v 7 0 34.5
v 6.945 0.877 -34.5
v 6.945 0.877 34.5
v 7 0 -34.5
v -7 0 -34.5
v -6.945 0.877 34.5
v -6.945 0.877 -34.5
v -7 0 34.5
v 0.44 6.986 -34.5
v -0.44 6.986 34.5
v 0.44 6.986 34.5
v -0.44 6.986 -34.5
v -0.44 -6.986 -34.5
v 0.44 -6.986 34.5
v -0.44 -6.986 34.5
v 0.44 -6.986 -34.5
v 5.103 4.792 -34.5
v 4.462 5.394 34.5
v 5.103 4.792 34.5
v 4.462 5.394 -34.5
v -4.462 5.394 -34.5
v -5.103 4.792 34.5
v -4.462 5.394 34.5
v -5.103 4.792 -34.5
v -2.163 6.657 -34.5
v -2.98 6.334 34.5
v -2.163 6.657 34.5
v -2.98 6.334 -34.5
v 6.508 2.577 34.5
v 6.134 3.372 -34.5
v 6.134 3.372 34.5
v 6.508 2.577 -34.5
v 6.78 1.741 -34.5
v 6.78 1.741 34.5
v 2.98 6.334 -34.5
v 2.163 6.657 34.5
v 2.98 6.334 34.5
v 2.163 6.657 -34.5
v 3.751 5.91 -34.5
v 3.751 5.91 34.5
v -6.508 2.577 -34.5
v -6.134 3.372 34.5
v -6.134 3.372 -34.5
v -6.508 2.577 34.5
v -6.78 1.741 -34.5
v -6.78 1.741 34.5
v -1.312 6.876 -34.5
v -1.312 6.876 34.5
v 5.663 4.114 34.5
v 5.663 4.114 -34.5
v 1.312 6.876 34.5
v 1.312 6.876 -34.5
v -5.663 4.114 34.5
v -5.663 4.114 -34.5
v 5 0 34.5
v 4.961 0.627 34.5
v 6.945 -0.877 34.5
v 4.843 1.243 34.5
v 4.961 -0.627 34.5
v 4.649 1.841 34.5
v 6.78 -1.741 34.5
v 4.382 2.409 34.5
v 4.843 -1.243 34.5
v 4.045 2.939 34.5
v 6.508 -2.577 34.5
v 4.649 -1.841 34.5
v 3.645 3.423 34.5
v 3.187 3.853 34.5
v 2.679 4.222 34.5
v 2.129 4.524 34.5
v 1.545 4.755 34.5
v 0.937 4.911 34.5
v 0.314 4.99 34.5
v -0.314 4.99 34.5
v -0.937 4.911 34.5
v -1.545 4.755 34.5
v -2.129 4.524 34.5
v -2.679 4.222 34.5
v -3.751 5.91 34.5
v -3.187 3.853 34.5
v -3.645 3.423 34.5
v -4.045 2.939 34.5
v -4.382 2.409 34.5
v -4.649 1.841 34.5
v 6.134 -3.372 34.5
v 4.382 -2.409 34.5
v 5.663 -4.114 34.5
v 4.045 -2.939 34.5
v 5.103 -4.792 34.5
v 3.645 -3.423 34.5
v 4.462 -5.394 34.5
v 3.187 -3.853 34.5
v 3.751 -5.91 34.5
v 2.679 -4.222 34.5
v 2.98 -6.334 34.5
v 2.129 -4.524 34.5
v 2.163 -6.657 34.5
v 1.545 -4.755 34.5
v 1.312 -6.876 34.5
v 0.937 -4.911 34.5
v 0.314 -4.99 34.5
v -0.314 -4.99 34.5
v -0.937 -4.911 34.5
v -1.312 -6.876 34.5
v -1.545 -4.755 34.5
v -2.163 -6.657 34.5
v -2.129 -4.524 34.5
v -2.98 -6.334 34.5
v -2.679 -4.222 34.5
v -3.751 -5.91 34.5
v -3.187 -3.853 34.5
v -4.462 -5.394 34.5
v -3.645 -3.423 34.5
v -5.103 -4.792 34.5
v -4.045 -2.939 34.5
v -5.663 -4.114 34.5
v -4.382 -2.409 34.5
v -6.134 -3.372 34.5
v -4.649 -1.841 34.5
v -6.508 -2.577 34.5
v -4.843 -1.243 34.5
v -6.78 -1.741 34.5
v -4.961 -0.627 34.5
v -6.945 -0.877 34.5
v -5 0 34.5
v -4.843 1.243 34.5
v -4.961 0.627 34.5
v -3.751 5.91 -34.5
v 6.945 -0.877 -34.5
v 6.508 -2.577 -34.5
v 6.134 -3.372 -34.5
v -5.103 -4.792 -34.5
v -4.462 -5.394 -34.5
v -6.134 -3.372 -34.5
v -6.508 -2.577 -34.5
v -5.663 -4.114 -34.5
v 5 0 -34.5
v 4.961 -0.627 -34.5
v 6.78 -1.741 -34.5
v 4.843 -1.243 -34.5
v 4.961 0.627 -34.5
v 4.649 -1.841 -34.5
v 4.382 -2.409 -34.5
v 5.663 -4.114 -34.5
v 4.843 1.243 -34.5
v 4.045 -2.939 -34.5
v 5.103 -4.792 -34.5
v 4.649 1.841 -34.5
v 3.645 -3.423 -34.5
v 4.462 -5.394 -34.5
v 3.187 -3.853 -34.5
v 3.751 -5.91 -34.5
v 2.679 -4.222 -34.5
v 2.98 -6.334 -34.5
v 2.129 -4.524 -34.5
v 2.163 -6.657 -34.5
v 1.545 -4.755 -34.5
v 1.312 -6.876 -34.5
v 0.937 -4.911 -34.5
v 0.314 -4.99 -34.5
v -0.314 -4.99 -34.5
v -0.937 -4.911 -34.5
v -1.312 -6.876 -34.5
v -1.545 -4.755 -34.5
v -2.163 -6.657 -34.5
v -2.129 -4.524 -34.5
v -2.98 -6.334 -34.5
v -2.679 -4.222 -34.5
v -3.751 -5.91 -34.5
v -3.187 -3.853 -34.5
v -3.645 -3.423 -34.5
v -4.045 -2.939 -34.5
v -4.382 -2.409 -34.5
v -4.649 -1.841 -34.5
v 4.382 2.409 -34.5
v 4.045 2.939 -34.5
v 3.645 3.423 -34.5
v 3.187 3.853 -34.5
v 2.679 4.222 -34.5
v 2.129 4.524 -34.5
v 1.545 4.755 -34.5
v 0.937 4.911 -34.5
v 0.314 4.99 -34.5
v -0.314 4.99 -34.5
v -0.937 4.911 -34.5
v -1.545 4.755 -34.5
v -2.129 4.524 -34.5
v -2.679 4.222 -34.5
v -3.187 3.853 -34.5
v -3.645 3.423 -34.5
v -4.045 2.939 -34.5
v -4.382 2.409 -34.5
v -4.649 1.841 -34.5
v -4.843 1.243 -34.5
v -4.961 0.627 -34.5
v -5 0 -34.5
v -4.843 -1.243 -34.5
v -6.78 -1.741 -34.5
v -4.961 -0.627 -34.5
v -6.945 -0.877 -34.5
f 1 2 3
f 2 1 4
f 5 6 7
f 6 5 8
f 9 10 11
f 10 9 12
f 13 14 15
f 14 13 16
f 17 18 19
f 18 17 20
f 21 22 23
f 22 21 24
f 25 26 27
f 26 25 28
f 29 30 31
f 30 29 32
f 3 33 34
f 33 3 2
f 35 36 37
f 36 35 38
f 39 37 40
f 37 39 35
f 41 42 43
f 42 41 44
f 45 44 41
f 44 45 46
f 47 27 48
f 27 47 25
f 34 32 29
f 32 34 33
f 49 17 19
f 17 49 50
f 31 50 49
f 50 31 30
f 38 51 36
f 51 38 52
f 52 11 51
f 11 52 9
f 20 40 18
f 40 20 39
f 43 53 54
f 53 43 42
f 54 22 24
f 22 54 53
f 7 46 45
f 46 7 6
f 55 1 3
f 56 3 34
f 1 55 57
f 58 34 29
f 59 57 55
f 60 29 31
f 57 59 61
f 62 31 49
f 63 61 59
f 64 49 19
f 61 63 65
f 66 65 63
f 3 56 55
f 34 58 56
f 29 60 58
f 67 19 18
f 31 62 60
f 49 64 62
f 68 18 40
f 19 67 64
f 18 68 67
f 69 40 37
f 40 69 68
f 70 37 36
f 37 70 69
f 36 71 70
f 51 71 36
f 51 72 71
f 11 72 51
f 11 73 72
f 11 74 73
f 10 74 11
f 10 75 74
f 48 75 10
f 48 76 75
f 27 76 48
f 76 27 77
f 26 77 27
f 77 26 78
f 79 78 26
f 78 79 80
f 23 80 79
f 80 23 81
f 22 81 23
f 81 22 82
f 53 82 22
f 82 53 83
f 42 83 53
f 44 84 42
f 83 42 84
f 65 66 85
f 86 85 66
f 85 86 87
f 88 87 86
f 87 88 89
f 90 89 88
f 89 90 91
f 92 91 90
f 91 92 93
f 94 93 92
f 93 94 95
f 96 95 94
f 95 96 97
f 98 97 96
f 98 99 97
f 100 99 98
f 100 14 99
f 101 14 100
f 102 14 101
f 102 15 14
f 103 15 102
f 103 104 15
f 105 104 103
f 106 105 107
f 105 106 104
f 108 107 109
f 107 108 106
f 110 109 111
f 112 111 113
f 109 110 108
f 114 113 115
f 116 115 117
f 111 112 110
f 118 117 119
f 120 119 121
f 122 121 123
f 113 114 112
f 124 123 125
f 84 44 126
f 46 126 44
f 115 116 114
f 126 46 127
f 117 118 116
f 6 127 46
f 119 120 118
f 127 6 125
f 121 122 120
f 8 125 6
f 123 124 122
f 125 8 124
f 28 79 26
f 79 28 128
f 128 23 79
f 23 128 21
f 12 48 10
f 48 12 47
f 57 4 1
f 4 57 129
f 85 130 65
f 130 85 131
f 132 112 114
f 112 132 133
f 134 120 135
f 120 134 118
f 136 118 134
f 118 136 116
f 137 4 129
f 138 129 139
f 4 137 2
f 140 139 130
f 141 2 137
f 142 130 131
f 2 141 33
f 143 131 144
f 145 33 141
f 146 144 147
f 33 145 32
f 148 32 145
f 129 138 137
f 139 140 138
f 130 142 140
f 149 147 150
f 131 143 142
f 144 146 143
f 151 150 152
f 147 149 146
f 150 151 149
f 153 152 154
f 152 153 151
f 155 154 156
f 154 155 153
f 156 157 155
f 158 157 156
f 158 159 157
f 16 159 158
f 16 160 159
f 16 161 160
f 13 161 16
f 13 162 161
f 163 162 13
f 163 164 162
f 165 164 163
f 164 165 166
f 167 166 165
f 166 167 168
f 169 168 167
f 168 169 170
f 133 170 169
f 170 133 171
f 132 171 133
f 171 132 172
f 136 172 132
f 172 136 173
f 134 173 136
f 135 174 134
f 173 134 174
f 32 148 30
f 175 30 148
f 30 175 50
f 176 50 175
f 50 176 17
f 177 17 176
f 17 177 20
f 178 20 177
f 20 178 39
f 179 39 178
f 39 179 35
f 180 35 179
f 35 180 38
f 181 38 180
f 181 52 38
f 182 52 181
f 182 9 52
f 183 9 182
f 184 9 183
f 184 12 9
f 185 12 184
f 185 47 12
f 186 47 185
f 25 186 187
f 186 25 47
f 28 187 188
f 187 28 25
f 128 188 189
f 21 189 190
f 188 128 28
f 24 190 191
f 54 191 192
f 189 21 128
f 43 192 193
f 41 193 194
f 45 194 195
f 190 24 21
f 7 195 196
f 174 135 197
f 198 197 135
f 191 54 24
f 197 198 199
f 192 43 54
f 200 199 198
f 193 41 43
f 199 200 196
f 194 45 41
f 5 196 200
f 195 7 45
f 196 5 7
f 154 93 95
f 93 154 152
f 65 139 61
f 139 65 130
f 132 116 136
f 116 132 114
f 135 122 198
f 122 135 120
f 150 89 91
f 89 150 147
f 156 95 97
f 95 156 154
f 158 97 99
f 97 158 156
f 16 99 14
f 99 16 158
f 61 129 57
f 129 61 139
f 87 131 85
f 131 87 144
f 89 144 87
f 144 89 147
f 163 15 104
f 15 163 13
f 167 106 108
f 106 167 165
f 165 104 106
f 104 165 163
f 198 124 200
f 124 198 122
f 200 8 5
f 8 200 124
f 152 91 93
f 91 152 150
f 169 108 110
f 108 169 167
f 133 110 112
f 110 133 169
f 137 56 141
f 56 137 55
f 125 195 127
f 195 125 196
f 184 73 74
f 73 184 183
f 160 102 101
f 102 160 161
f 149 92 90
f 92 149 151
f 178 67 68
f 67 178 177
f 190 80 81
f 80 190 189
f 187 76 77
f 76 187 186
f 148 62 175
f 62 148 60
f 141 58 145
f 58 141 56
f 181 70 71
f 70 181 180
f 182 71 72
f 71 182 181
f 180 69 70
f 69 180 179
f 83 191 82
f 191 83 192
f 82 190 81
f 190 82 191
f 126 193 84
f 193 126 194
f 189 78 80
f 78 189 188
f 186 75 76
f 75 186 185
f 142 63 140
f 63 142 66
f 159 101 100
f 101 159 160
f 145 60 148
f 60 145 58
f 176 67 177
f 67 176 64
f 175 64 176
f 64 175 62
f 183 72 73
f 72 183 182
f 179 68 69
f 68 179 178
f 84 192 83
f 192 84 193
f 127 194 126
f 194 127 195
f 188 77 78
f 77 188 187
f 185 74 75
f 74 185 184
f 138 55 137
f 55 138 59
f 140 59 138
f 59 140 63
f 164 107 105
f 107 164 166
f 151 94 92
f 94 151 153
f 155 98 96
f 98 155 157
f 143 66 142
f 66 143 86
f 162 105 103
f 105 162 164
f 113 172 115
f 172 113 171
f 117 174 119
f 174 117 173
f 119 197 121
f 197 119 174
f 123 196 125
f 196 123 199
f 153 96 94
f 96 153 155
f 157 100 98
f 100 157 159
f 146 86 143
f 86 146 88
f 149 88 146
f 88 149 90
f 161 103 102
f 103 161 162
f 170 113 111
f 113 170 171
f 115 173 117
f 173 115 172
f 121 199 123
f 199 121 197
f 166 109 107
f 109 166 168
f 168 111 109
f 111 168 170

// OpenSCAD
$fn = 50;


difference() {
	union() {
		translate(v = [0, 0, -34.5000000000]) {
			cylinder(h = 69, r = 7.0000000000);
		}
	}
	union() {
		translate(v = [0, 0, -100.0000000000]) {
			cylinder(h = 200, r = 5);
		}
	}
}
